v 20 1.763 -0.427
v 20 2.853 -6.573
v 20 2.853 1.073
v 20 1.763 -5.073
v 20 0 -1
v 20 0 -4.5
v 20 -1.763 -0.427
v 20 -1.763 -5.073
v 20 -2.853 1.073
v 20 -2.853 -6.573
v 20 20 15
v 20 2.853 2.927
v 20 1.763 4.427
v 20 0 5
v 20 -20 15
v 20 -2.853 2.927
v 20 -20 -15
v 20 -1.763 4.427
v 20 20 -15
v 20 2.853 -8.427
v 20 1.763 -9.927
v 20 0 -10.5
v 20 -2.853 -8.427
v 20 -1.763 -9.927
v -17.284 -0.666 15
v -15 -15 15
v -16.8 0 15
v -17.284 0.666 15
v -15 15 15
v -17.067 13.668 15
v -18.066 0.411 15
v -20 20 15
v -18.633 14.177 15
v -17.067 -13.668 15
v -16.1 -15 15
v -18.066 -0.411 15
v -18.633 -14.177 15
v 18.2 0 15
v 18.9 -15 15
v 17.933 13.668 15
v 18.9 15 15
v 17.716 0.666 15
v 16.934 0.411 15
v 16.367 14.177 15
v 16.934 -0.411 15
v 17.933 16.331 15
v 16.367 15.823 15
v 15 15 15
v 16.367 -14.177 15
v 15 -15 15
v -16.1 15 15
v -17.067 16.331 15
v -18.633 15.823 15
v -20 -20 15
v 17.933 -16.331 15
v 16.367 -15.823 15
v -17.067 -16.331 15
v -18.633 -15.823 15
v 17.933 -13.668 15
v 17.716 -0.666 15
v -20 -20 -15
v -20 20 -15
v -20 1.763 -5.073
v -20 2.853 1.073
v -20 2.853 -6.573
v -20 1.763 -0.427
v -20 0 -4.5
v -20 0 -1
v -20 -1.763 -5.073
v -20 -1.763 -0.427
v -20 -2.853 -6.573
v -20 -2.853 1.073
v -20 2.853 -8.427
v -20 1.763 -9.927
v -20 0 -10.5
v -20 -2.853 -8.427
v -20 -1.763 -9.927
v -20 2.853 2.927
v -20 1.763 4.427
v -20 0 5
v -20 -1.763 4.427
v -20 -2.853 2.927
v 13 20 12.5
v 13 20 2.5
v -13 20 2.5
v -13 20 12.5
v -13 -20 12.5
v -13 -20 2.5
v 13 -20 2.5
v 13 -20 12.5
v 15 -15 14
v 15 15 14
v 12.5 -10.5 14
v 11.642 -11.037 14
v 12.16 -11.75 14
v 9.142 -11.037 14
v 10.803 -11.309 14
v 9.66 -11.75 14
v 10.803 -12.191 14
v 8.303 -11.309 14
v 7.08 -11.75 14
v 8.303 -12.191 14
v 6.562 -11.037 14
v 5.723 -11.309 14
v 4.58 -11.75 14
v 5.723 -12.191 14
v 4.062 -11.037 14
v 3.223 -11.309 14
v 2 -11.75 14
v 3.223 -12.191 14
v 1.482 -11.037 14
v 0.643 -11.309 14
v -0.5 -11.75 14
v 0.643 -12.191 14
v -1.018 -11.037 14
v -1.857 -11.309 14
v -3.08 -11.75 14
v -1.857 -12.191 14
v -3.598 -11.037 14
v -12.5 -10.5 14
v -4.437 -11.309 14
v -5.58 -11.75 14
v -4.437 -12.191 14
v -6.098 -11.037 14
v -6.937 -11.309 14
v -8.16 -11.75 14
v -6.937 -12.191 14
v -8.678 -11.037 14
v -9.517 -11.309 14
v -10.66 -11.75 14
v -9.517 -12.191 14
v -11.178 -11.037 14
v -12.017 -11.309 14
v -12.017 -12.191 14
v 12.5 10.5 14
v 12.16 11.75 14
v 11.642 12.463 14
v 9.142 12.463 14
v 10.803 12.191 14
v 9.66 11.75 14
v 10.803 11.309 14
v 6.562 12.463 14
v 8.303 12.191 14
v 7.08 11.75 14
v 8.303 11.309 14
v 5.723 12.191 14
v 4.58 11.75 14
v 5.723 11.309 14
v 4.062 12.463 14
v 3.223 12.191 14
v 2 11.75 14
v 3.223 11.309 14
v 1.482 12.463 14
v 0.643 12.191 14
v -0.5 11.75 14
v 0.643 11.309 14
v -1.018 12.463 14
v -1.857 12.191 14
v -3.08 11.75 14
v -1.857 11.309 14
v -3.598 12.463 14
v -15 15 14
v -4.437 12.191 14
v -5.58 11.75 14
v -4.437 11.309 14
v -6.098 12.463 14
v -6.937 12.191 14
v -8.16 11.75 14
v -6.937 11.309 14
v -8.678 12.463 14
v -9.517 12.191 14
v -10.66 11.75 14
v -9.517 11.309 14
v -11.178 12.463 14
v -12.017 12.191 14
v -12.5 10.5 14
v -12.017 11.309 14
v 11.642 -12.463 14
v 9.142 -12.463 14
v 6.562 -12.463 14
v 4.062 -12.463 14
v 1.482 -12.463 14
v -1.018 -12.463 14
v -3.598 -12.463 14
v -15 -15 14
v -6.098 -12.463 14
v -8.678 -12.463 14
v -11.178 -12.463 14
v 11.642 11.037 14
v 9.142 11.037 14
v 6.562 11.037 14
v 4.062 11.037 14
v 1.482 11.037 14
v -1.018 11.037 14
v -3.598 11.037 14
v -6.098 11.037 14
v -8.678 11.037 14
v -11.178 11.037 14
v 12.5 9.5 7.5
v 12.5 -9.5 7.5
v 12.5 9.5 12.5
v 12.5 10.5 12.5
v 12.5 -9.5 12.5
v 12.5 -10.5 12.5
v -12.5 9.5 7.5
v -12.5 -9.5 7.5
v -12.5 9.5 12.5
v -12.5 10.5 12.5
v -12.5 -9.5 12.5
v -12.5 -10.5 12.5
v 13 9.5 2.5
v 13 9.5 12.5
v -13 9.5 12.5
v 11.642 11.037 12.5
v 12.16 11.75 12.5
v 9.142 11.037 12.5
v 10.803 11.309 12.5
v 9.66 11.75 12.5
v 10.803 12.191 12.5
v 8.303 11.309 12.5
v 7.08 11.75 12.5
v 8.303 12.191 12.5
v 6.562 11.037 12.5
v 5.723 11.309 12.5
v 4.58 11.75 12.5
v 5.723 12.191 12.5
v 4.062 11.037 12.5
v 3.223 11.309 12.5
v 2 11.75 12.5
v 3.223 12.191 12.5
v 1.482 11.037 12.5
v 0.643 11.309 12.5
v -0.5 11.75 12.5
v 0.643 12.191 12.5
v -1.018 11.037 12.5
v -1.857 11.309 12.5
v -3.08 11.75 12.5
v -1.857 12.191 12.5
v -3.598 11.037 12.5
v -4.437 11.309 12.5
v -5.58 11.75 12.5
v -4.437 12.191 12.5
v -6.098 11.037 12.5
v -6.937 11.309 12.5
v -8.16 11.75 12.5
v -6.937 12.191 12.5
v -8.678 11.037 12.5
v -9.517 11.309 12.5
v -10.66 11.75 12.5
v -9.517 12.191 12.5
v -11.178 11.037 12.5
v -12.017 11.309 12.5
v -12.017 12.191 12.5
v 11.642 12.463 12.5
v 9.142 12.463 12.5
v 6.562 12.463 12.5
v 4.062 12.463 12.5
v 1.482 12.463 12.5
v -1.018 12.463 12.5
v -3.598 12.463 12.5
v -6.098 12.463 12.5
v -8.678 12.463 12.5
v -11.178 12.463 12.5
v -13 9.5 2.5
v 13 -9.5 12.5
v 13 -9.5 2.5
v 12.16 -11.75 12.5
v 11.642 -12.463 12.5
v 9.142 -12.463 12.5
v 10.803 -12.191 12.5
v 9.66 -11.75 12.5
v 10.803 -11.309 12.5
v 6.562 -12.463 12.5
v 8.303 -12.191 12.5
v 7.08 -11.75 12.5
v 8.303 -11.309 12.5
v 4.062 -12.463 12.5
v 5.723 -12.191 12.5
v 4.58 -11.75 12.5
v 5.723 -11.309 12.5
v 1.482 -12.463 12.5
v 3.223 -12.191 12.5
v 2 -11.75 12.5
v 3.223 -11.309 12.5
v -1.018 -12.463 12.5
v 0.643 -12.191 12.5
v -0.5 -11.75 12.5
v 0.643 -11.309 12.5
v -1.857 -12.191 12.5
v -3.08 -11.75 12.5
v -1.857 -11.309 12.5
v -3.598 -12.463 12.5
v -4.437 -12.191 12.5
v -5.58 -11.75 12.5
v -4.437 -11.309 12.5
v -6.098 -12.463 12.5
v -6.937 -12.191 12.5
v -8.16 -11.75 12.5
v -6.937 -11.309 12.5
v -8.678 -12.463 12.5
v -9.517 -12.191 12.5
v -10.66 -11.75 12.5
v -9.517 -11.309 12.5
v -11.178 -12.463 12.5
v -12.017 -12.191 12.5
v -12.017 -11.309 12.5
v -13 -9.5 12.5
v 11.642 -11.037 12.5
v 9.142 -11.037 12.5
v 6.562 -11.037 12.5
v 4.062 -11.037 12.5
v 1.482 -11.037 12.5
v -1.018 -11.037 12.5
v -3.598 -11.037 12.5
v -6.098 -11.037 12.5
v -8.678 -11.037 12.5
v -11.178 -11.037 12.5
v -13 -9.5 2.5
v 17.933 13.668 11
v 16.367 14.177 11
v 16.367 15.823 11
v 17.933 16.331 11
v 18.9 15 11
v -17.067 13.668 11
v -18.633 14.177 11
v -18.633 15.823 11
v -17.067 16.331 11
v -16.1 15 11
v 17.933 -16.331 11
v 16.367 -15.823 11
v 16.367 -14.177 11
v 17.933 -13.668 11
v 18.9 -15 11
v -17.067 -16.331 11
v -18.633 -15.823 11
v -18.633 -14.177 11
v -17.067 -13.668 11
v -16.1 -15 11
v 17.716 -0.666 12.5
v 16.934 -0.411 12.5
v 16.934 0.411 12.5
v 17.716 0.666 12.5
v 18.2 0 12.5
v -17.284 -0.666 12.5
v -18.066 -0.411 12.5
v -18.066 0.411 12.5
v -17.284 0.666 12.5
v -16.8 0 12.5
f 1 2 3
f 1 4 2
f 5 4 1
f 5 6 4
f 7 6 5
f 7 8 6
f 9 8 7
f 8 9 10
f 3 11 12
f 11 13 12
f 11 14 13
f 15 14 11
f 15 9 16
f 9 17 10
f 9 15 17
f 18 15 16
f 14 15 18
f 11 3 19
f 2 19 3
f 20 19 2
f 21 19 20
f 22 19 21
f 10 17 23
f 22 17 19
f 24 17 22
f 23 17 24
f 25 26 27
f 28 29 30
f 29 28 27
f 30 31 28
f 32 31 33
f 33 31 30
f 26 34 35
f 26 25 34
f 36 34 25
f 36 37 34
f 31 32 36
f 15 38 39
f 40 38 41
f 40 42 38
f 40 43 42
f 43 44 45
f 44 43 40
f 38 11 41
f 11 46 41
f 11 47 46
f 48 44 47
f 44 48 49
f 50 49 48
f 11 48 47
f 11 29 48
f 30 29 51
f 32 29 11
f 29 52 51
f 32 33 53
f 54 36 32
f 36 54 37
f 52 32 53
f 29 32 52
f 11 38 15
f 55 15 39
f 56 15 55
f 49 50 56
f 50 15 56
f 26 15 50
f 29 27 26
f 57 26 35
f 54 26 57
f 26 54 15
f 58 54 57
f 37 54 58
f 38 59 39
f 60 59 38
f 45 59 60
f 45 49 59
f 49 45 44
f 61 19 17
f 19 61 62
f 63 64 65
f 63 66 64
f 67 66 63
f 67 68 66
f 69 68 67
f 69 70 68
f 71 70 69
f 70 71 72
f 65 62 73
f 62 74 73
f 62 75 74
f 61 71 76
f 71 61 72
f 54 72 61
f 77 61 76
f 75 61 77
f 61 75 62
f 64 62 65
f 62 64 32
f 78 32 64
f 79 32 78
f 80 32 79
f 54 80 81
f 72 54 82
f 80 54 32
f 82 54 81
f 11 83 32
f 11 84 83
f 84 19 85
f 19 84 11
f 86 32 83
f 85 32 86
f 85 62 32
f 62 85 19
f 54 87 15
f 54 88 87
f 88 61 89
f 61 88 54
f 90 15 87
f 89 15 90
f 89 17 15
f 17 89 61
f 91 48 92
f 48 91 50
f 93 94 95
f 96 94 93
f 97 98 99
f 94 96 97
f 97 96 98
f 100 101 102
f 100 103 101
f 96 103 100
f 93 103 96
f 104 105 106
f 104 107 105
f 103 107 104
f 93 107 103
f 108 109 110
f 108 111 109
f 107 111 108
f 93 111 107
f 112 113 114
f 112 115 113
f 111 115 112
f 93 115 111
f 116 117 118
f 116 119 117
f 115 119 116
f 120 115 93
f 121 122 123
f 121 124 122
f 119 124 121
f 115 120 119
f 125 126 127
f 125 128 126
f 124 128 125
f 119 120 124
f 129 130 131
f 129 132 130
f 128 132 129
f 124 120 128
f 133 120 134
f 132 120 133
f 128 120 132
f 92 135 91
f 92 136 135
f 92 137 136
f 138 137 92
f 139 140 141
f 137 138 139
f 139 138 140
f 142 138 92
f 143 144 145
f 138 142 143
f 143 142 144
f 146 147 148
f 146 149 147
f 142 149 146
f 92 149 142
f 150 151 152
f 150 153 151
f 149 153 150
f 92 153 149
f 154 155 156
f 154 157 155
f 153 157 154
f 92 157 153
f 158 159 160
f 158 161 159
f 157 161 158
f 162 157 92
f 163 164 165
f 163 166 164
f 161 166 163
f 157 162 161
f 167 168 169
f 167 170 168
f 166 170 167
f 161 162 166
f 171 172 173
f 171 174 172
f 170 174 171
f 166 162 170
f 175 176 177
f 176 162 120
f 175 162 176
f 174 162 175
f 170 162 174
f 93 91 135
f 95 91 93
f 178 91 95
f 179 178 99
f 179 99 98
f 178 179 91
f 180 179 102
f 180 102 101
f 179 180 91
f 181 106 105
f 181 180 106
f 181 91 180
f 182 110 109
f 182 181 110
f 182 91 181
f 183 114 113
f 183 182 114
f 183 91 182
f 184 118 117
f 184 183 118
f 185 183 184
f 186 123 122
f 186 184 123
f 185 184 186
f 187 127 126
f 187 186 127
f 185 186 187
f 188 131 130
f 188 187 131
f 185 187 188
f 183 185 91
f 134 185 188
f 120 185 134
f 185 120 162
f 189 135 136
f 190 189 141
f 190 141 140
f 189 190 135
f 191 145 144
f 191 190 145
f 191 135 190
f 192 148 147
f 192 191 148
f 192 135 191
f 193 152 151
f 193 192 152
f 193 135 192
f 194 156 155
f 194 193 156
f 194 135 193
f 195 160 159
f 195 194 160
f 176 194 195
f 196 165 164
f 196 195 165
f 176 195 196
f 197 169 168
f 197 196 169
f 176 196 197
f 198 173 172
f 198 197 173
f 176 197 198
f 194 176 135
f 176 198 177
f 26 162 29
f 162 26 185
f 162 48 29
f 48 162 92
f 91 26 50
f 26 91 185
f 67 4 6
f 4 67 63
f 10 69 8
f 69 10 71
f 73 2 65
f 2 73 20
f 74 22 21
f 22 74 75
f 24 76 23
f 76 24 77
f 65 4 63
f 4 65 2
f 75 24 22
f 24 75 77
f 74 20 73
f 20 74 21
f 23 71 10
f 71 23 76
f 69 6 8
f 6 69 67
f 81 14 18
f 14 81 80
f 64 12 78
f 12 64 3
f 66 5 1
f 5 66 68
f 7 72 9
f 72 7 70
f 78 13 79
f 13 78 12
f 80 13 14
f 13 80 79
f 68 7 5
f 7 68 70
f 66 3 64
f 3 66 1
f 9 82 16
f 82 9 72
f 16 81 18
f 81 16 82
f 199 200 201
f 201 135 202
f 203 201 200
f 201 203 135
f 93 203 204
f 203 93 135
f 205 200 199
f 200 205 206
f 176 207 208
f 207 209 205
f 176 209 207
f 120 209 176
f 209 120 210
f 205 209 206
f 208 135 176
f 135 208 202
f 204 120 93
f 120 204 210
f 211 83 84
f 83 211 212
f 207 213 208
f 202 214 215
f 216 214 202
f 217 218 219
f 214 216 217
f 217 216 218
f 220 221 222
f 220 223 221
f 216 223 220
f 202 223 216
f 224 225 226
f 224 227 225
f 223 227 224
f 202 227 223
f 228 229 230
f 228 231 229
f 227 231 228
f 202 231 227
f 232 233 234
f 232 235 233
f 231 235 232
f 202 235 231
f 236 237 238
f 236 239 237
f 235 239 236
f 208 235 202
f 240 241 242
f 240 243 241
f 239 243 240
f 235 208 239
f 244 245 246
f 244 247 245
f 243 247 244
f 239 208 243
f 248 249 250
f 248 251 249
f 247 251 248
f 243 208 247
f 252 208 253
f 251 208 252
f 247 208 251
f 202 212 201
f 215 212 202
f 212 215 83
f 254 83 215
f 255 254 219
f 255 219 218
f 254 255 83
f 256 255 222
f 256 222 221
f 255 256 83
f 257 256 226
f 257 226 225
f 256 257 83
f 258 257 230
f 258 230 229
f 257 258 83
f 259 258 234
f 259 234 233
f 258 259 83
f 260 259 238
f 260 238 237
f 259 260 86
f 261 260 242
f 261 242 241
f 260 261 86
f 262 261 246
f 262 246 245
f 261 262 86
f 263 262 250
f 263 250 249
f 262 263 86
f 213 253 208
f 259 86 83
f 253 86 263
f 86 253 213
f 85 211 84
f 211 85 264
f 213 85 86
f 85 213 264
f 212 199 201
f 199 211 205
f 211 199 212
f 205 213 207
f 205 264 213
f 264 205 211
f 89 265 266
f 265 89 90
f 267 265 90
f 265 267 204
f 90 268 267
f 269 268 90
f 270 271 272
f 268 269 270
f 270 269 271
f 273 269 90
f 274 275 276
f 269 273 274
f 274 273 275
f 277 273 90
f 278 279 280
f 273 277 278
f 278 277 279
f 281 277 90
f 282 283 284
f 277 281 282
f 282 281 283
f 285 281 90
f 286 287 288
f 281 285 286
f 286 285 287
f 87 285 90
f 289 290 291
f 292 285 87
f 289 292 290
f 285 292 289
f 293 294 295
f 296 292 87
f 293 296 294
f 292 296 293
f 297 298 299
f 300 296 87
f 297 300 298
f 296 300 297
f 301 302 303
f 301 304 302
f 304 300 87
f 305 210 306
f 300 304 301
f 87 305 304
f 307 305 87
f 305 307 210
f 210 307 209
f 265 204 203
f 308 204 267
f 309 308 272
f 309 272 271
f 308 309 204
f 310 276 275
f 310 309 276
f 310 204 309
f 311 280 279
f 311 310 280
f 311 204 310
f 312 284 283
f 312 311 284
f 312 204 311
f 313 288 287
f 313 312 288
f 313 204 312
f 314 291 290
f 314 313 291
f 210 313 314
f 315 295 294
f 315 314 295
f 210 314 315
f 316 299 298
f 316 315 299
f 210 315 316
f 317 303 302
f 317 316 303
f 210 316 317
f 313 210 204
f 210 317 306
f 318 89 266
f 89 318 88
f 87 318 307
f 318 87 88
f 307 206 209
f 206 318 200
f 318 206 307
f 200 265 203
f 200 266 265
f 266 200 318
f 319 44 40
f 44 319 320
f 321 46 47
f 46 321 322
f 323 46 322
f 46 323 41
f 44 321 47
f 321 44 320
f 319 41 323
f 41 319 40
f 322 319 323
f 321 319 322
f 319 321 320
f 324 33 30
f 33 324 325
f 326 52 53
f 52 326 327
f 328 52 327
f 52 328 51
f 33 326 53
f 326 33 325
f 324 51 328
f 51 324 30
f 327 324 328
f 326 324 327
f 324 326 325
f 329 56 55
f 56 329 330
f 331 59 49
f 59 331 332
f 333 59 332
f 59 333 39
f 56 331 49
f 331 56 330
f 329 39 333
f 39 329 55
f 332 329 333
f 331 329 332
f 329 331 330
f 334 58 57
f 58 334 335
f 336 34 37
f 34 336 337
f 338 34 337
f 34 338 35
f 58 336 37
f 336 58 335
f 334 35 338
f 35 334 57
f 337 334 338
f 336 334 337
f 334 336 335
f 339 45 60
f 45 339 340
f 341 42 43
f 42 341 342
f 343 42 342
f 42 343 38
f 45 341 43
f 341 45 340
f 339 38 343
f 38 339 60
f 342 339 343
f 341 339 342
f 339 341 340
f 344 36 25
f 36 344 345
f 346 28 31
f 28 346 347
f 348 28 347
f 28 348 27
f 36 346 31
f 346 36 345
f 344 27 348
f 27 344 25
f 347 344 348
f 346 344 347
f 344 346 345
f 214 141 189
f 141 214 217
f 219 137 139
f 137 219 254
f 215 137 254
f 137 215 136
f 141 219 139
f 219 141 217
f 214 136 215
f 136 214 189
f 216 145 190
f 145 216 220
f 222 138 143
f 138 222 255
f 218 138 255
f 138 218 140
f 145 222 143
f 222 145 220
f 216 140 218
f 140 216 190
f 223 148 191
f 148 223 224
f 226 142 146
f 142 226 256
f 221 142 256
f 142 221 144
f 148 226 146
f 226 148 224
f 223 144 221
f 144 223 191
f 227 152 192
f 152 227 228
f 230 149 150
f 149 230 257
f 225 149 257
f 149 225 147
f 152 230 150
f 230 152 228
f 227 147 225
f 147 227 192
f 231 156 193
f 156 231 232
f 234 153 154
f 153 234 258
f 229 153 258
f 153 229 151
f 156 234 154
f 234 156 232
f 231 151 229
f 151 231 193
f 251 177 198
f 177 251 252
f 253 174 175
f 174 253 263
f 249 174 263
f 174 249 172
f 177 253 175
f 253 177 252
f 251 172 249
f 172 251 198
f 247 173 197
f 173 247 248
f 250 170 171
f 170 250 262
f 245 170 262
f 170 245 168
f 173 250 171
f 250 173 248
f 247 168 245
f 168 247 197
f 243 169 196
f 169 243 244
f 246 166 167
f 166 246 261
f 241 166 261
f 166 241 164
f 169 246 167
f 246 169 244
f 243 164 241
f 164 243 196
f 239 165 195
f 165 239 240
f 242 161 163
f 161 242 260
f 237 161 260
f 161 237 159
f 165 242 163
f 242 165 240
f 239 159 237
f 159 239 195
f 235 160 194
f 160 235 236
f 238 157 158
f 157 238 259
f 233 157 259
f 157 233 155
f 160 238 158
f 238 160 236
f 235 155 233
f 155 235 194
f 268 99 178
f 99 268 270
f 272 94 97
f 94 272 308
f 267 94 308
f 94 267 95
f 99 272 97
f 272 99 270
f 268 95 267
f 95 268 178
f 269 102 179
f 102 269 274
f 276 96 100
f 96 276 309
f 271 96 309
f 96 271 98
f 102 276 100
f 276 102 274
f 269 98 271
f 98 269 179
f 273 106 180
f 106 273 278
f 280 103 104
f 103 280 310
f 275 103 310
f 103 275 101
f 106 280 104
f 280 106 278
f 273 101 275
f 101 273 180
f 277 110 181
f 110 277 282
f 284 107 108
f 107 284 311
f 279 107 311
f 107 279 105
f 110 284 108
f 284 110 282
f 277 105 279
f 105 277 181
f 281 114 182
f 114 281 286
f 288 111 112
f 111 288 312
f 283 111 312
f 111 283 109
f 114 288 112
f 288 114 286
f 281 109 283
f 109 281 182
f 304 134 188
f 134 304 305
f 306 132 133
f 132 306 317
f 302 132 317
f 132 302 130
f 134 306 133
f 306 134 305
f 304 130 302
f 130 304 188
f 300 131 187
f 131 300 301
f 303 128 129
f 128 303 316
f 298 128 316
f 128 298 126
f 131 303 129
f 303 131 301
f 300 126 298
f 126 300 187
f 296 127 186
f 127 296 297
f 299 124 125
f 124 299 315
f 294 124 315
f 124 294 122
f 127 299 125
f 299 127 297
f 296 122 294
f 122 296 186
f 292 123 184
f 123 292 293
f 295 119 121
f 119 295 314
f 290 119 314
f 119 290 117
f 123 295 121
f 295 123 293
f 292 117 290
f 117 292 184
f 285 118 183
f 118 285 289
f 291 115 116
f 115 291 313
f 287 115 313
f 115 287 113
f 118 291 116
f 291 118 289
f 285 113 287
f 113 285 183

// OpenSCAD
//Substrate holder v2


module substrate_holder(x1,y1,z1, s_d)
{
    
    //substrate dimensions
    x=30;
    y=30;
    z=4.1;
    d=1.5;
    
    //negative y
    difference(){
    difference(){
    difference(){
    difference(){
    difference(){
    difference(){
    difference(){
    difference(){
    difference(){
    difference(){
       // positive y 
    difference(){
    difference(){
    difference(){
    difference(){
    difference(){
    difference(){
    difference(){
    difference(){
    difference(){
    difference(){
    
    //negative y
    //difference(){
    //difference(){
    //difference(){
    //difference(){
    //difference(){
    //difference(){
    //difference(){
    //difference(){
    //difference(){
    //difference(){
       // positive y 
    //difference(){
    //difference(){
    //difference(){
    //difference(){
    //difference(){
    //difference(){
    //difference(){
    //difference(){
    //difference(){
    //difference(){
        
        //components
            
            difference(){
            difference(){
            difference(){
            difference(){
            difference(){
            difference(){
            difference(){
            difference(){
            difference(){
            difference(){
            difference(){
            difference(){
            //difference(){
        cube ([x1,y1,z1], center = true);
        
        //substrate outline
        translate([0,0,z1/2]) 
        cube([x,y,2], center = true);}
            // cartridge heater
                translate([0,0,-(z1/4)])
                rotate([0,90,0])
                cylinder(r=3, h=x1+1, center = true);}
                
             // temp sensor
                translate([0,0,2
                ])
                rotate([0,90,0])
                cylinder(r=3, h=x1+1, center = true);} 
             // air flow 
              
              translate([0,0,z1/3+2])
              cube([x-5,y-9,9], center =true);}
              
              translate([0,15,z1/2-7.5])
              cube([x-4,y-19,10], center =true);}
              
              translate([0,-15,z1/2-7.5])
              cube([x-4,y-19,10], center =true);}
             
              
                
            
                
             //bracket
             translate([17.5,y/2,z1/2])
             cylinder(r=1.4, h=8, center =true);}
             
             translate([-17.5,y/2,z1/2])
             cylinder(r=1.4, h=8, center =true);}
             
             translate([17.5,-(y/2),z1/2])
             cylinder(r=1.4, h=8, center =true);}
             
             translate([-17.5,-(y/2),z1/2])
             cylinder(r=1.4, h=8, center =true);}
             
             //bracket guide pins
             translate([17.5,0,z1/2])
             cylinder(r=0.7, h=5, center =true);}
             translate([-17.5,0,z1/2])
             cylinder(r=0.7, h=5, center =true);}
             
                
                
                
                // gap for heater
                //translate([0,0,0])
                //rotate([0,0,0])
                //cylinder(r=8, h=x1+1, center = true);} 
              
        //sideways oriented holes        
        // positive y posiitve x   
////        translate([x/2-3.59,y/2+1,z1/2])
////             rotate([90,0,0])
////        cylinder(r=d/2, h=9, center =true);}
////        
////        translate([x/2-6.09,y/2+1,z1/2])
////         rotate([90,0,0])
////        cylinder(r=d/2, h=9, center =true);}
////        
////          translate([x/2-8.67,y/2+1,z1/2])
////         rotate([90,0,0])
////        cylinder(r=d/2, h=9, center =true);}
////        
////        translate([x/2-11.17,y/2+1,z1/2])
////         rotate([90,0,0])
////        cylinder(r=d/2, h=9, center =true);}
////        
////        translate([x/2-13.75,y/2+1,z1/2])
////         rotate([90,0,0])
////        cylinder(r=d/2, h=9, center =true);}
////        
////        //positive y negative x
////        translate([-(x/2-3.59),y/2+1,z1/2])
////         rotate([90,0,0])
////        cylinder(r=d/2, h=9, center =true);}
////        
////        translate([-(x/2-6.09),y/2+1,z1/2])
////         rotate([90,0,0])
////        cylinder(r=d/2, h=9, center =true);}
////        
////          translate([-(x/2-8.67),y/2+1,z1/2])
////         rotate([90,0,0])
////        cylinder(r=d/2, h=9, center =true);}
////        
////        translate([-(x/2-11.17),y/2+1,z1/2])
////         rotate([90,0,0])
////        cylinder(r=d/2, h=9, center =true);}
////        
////        translate([-(x/2-13.75),y/2+1,z1/2])
////         rotate([90,0,0])
////        cylinder(r=d/2, h=9, center =true);}
////        
////         // negative y positve x   
////        translate([x/2-3.59,-(y/2+1),z1/2])
////         rotate([90,0,0])
////        cylinder(r=d/2, h=9, center =true);}
////        
////        translate([x/2-6.09,-(y/2+1),z1/2])
////         rotate([90,0,0])
////        cylinder(r=d/2, h=9, center =true);}
////        
////          translate([x/2-8.67,-(y/2+1),z1/2])
////         rotate([90,0,0])
////        cylinder(r=d/2, h=9, center =true);}
////        
////        translate([x/2-11.17,-(y/2+1),z1/2])
////         rotate([90,0,0])
////        cylinder(r=d/2, h=9, center =true);}
////        
////        translate([x/2-13.75,-(y/2+1),z1/2])
////         rotate([90,0,0])
////        cylinder(r=d/2, h=9, center =true);}
////        
////        //negative y negative x
////        translate([-(x/2-3.59),-(y/2+1),z1/2])
////         rotate([90,0,0])
////        cylinder(r=d/2, h=9, center =true);}
////        
////        translate([-(x/2-6.09),-(y/2+1),z1/2])
////         rotate([90,0,0])
////        cylinder(r=d/2, h=9, center =true);}
////        
////          translate([-(x/2-8.67),-(y/2+1),z1/2])
////         rotate([90,0,0])
////        cylinder(r=d/2, h=9, center =true);}
////        
////        translate([-(x/2-11.17),-(y/2+1),z1/2])
////         rotate([90,0,0])
////        cylinder(r=d/2, h=9, center =true);}
////        
////        translate([-(x/2-13.75),-(y/2+1),z1/2])
////         rotate([90,0,0])
////        cylinder(r=d/2, h=9, center =true);}
    
    
        
//Vertical oriented holes        
         // positive y posiitve x   
        translate([x/2-3.59,y/2-3.25,z1/2])
        cylinder(r=d/2, h=z+1.1, center =true);}
        
        translate([x/2-6.09,y/2-3.25,z1/2])
        cylinder(r=d/2, h=z+1.1, center =true);}
        
          translate([x/2-8.67,y/2-3.25,z1/2])
        cylinder(r=d/2, h=z+1.1, center =true);}
        
        translate([x/2-11.17,y/2-3.25,z1/2])
        cylinder(r=d/2, h=z+1.1, center =true);}
        
        translate([x/2-13.75,y/2-3.25,z1/2])
        cylinder(r=d/2, h=z+1.1, center =true);}
        
        //positive y negative x
        translate([-(x/2-3.59),y/2-3.25,z1/2])
        cylinder(r=d/2, h=z+1.1, center =true);}
        
        translate([-(x/2-6.09),y/2-3.25,z1/2])
        cylinder(r=d/2, h=z+1.1, center =true);}
        
          translate([-(x/2-8.67),y/2-3.25,z1/2])
        cylinder(r=d/2, h=z+1.1, center =true);}
        
        translate([-(x/2-11.17),y/2-3.25,z1/2])
        cylinder(r=d/2, h=z+1.1, center =true);}
        
        translate([-(x/2-13.75),y/2-3.25,z1/2])
        cylinder(r=d/2, h=z+1.1, center =true);}
        
         // negative y positve x   
        translate([x/2-3.59,-(y/2-3.25),z1/2])
        cylinder(r=d/2, h=z+1.1, center =true);}
        
        translate([x/2-6.09,-(y/2-3.25),z1/2])
        cylinder(r=d/2, h=z+1.1, center =true);}
        
          translate([x/2-8.67,-(y/2-3.25),z1/2])
        cylinder(r=d/2, h=z+1.1, center =true);}
        
        translate([x/2-11.17,-(y/2-3.25),z1/2])
        cylinder(r=d/2, h=z+1.1, center =true);}
        
        translate([x/2-13.75,-(y/2-3.25),z1/2])
        cylinder(r=d/2, h=z+1.1, center =true);}
        
        //negative y negative x
        translate([-(x/2-3.59),-(y/2-3.25),z1/2])
        cylinder(r=d/2, h=z+1.1, center =true);}
        
        translate([-(x/2-6.09),-(y/2-3.25),z1/2])
        cylinder(r=d/2, h=z+1.1, center =true);}
        
          translate([-(x/2-8.67),-(y/2-3.25),z1/2])
        cylinder(r=d/2, h=z+1.1, center =true);}
        
        translate([-(x/2-11.17),-(y/2-3.25),z1/2])
        cylinder(r=d/2, h=z+1.1, center =true);}
        
        translate([-(x/2-13.75),-(y/2-3.25),z1/2])
        cylinder(r=d/2, h=z+1.1, center =true);}
    
    
    
    
    
    
    
    
    
    
    
    
    
    
    
    
    
    
    
    
    }

    substrate_holder(40,40,30);
